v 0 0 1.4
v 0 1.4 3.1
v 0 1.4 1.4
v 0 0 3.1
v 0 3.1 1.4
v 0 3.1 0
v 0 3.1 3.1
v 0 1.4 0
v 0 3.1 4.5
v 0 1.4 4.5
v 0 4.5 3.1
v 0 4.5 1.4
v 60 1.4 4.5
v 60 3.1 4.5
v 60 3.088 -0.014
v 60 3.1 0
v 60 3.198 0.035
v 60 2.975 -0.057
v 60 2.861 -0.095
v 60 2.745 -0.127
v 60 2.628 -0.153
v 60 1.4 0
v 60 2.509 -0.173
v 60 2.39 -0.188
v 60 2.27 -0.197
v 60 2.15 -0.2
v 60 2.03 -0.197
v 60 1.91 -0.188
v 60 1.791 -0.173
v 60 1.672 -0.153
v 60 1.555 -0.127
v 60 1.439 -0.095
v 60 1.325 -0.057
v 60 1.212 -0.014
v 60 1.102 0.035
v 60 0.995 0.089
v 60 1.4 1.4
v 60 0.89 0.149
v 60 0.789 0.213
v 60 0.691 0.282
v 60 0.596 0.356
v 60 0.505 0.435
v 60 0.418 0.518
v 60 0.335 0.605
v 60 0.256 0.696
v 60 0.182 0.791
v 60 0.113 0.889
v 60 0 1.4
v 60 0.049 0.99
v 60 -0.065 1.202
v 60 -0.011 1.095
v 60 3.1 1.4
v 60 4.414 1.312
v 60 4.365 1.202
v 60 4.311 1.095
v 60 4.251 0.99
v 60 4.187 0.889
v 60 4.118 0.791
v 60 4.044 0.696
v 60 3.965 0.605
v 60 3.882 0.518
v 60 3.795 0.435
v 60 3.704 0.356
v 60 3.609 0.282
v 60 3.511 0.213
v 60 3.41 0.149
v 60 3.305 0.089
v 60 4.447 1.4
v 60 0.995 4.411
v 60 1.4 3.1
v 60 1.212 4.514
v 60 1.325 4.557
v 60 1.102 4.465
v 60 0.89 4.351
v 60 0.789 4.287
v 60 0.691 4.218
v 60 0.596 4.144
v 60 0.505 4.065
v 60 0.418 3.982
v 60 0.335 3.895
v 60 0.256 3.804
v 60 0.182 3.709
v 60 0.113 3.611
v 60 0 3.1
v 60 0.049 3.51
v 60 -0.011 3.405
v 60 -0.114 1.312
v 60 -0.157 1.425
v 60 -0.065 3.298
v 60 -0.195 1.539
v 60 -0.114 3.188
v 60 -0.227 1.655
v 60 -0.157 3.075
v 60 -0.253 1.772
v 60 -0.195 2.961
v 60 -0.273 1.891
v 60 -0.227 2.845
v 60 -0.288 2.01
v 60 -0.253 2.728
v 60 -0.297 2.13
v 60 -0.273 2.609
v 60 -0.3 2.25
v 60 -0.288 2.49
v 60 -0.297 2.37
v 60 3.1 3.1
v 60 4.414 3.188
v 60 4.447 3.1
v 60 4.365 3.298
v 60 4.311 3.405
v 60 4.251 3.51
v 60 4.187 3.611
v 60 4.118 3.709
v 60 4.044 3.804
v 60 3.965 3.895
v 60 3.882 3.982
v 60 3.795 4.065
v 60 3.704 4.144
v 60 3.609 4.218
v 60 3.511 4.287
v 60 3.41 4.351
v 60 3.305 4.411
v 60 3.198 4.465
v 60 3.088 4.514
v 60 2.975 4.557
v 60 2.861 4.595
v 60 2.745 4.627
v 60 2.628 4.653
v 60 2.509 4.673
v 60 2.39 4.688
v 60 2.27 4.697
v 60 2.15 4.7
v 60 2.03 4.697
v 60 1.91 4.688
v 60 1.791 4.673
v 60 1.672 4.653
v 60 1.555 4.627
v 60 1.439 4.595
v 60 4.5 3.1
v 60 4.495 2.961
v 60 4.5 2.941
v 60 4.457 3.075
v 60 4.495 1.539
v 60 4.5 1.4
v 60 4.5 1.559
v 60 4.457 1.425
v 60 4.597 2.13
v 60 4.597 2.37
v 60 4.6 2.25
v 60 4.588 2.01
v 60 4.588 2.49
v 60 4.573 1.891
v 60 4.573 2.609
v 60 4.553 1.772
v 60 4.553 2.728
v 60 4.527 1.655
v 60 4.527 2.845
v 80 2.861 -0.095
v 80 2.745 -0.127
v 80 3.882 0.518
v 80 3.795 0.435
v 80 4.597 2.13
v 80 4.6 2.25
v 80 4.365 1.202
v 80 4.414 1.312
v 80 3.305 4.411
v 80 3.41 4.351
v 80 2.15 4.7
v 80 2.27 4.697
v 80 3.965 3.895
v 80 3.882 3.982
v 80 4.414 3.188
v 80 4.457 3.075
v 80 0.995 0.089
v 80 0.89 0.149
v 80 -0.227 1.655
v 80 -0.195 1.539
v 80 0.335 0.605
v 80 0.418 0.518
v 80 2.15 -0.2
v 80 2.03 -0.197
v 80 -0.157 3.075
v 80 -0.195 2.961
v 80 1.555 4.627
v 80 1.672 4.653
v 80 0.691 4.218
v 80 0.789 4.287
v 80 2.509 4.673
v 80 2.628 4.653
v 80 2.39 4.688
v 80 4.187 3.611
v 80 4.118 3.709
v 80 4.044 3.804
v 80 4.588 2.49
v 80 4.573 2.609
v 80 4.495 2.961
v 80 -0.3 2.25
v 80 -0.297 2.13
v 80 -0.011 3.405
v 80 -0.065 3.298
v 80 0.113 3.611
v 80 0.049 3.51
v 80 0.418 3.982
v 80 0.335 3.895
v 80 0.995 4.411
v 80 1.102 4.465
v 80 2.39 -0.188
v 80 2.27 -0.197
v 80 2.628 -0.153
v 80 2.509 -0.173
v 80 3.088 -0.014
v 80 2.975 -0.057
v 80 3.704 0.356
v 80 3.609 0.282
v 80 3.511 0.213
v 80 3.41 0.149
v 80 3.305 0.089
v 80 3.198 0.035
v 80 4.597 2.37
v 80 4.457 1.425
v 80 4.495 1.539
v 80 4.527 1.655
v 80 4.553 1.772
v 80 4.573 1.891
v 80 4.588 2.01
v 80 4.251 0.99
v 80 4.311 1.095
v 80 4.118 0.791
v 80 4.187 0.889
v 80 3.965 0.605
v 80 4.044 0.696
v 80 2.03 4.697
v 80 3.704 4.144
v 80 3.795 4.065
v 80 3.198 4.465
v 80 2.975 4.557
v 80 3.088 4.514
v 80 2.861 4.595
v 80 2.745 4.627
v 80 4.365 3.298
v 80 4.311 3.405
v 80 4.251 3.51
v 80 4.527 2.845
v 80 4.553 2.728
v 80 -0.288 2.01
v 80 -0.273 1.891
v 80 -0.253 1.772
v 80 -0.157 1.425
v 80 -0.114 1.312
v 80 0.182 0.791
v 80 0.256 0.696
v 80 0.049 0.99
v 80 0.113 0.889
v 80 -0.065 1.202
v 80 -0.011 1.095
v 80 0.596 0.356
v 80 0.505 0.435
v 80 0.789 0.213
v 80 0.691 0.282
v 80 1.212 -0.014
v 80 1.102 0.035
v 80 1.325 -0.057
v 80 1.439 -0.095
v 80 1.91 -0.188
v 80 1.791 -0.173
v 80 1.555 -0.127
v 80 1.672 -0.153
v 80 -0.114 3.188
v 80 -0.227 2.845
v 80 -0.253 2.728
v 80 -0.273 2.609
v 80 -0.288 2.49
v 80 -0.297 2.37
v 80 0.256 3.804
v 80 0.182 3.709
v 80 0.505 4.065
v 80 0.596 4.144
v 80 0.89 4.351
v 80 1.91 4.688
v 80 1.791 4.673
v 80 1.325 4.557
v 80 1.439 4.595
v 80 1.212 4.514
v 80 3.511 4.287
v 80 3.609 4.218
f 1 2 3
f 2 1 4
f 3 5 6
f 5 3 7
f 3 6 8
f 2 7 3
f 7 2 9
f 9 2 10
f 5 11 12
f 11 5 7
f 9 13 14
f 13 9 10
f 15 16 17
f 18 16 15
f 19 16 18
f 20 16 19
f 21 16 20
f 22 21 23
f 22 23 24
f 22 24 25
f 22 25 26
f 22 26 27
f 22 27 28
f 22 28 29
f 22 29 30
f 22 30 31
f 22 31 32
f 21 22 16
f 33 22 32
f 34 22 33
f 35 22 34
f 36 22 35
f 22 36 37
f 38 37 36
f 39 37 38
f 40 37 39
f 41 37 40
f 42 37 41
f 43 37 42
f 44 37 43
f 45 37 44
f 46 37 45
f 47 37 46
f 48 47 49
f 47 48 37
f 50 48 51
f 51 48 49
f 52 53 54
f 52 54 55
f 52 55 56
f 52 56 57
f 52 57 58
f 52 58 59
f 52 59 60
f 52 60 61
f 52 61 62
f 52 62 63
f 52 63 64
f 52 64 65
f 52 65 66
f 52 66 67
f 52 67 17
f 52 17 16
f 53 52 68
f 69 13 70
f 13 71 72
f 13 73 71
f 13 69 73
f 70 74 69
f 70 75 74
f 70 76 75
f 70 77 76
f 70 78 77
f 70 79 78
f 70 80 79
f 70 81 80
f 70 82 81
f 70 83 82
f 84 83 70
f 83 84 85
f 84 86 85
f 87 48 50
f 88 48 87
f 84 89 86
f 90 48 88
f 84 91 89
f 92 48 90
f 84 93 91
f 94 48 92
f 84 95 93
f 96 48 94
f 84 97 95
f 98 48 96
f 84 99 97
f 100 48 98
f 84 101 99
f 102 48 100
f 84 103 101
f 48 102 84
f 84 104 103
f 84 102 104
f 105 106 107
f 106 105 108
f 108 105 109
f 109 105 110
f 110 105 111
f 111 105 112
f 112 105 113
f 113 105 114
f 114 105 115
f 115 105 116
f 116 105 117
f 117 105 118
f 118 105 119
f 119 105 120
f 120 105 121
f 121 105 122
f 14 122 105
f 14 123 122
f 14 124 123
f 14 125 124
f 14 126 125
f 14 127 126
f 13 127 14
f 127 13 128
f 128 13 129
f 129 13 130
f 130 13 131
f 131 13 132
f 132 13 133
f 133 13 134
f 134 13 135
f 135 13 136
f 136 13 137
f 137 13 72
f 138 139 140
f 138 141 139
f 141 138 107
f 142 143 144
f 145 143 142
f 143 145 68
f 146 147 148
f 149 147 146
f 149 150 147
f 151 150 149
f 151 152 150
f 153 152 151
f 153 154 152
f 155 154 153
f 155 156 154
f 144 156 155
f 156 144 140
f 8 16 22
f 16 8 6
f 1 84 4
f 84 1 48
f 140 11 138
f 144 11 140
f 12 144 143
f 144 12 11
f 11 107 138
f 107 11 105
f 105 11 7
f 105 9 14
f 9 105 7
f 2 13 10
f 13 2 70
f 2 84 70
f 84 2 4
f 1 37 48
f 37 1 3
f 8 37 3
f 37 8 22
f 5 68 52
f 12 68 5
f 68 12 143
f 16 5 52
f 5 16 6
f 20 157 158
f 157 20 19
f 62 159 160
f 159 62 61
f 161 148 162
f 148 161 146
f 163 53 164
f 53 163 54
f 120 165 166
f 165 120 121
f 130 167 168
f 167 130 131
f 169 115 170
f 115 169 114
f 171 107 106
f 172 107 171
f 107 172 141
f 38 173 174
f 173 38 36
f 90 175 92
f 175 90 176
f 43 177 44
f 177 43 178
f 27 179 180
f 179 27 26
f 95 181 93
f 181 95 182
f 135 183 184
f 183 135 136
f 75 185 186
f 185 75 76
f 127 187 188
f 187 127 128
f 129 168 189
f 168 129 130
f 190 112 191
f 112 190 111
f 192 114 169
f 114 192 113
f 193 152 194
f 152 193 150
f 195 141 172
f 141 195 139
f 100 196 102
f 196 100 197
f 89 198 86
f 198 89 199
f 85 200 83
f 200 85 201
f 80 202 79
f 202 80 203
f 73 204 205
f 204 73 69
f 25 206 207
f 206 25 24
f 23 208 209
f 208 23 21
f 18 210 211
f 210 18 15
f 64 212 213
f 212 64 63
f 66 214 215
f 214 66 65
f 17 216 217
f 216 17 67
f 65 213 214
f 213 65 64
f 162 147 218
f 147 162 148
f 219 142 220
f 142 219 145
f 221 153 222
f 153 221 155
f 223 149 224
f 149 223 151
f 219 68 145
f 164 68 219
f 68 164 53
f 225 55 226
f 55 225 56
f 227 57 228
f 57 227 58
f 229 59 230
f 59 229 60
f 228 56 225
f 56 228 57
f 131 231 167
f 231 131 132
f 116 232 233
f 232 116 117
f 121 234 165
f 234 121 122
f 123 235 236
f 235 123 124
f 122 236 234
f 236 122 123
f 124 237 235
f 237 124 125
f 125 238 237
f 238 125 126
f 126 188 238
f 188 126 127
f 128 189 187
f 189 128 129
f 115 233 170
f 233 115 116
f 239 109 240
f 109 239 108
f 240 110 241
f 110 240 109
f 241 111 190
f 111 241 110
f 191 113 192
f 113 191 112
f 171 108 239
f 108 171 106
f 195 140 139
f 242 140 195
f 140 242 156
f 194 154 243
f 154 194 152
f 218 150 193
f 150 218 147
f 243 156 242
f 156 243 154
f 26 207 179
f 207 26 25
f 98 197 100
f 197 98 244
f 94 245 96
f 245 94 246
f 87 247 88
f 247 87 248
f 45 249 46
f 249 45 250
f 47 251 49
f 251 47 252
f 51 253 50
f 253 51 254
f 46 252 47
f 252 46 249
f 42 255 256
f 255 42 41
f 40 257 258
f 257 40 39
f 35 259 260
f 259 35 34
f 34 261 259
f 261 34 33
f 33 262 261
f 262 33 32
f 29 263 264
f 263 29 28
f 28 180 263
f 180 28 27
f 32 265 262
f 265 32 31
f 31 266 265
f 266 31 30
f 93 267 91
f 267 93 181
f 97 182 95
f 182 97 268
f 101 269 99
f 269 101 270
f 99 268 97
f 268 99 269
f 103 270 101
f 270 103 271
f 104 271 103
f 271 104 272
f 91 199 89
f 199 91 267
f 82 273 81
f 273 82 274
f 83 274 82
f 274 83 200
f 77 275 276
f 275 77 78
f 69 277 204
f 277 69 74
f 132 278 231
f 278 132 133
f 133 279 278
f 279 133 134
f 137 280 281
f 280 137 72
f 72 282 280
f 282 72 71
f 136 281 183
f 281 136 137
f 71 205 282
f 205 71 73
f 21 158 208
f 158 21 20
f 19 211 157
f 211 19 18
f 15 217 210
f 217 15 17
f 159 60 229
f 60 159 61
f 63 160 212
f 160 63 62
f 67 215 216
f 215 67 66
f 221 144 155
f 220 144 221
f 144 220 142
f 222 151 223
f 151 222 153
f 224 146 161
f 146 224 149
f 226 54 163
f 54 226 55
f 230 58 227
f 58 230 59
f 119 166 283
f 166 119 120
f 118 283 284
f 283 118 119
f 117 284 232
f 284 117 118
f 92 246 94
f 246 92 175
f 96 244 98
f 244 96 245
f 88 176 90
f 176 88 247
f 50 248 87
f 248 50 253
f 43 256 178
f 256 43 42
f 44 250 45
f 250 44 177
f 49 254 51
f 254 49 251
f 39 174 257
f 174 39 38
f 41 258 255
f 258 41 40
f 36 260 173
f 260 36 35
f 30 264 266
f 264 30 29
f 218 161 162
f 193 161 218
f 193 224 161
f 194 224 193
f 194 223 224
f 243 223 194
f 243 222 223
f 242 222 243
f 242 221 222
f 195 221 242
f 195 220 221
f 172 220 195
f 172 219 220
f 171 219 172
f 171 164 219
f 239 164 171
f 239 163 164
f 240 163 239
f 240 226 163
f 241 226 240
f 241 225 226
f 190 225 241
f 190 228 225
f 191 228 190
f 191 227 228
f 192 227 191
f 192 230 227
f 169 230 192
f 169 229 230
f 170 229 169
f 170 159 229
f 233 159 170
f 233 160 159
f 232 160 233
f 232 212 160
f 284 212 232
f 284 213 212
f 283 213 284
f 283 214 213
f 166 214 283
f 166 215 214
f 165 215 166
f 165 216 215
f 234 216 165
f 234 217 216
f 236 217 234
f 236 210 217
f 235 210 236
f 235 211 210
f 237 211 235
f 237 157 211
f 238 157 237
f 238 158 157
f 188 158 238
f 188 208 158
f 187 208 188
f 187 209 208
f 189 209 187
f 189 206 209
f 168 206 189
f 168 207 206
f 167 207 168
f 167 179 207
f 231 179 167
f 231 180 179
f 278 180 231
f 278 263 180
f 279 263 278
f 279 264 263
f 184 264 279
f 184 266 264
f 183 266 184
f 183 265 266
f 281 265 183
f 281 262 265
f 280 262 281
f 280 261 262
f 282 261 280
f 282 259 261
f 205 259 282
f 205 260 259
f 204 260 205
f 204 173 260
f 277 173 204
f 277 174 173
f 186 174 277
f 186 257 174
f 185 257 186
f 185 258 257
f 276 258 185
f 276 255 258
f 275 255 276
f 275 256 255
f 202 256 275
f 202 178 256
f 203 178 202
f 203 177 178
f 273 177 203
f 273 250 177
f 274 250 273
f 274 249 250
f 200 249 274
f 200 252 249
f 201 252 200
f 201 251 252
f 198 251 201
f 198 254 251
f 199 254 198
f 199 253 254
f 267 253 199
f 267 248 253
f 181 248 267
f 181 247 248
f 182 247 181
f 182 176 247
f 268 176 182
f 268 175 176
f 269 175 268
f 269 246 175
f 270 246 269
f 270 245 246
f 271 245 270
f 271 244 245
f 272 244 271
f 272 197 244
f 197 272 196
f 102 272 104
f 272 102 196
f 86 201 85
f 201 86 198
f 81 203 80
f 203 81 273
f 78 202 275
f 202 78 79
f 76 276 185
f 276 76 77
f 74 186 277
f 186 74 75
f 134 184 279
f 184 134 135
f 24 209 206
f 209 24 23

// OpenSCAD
length = 4.5;
width = 60;
height = 4.5;
radius = 4.9/2;
difference()
{
cube([width,length,height]);
translate([-1,3.1,3.1])
cube([width+5,length,height]);
translate([-1,-1.1,3.1])
cube([width+5,2.5,height]);
translate([-1,-1.1,-1.1])
cube([width+5,2.5,2.5]);
translate([-1,3.1,-1.1])
cube([width+5,length,2.5]);
}

translate([width,radius-0.3,radius-0.2])
rotate([0,90,0])
cylinder(20,r=radius,$fn=128);
